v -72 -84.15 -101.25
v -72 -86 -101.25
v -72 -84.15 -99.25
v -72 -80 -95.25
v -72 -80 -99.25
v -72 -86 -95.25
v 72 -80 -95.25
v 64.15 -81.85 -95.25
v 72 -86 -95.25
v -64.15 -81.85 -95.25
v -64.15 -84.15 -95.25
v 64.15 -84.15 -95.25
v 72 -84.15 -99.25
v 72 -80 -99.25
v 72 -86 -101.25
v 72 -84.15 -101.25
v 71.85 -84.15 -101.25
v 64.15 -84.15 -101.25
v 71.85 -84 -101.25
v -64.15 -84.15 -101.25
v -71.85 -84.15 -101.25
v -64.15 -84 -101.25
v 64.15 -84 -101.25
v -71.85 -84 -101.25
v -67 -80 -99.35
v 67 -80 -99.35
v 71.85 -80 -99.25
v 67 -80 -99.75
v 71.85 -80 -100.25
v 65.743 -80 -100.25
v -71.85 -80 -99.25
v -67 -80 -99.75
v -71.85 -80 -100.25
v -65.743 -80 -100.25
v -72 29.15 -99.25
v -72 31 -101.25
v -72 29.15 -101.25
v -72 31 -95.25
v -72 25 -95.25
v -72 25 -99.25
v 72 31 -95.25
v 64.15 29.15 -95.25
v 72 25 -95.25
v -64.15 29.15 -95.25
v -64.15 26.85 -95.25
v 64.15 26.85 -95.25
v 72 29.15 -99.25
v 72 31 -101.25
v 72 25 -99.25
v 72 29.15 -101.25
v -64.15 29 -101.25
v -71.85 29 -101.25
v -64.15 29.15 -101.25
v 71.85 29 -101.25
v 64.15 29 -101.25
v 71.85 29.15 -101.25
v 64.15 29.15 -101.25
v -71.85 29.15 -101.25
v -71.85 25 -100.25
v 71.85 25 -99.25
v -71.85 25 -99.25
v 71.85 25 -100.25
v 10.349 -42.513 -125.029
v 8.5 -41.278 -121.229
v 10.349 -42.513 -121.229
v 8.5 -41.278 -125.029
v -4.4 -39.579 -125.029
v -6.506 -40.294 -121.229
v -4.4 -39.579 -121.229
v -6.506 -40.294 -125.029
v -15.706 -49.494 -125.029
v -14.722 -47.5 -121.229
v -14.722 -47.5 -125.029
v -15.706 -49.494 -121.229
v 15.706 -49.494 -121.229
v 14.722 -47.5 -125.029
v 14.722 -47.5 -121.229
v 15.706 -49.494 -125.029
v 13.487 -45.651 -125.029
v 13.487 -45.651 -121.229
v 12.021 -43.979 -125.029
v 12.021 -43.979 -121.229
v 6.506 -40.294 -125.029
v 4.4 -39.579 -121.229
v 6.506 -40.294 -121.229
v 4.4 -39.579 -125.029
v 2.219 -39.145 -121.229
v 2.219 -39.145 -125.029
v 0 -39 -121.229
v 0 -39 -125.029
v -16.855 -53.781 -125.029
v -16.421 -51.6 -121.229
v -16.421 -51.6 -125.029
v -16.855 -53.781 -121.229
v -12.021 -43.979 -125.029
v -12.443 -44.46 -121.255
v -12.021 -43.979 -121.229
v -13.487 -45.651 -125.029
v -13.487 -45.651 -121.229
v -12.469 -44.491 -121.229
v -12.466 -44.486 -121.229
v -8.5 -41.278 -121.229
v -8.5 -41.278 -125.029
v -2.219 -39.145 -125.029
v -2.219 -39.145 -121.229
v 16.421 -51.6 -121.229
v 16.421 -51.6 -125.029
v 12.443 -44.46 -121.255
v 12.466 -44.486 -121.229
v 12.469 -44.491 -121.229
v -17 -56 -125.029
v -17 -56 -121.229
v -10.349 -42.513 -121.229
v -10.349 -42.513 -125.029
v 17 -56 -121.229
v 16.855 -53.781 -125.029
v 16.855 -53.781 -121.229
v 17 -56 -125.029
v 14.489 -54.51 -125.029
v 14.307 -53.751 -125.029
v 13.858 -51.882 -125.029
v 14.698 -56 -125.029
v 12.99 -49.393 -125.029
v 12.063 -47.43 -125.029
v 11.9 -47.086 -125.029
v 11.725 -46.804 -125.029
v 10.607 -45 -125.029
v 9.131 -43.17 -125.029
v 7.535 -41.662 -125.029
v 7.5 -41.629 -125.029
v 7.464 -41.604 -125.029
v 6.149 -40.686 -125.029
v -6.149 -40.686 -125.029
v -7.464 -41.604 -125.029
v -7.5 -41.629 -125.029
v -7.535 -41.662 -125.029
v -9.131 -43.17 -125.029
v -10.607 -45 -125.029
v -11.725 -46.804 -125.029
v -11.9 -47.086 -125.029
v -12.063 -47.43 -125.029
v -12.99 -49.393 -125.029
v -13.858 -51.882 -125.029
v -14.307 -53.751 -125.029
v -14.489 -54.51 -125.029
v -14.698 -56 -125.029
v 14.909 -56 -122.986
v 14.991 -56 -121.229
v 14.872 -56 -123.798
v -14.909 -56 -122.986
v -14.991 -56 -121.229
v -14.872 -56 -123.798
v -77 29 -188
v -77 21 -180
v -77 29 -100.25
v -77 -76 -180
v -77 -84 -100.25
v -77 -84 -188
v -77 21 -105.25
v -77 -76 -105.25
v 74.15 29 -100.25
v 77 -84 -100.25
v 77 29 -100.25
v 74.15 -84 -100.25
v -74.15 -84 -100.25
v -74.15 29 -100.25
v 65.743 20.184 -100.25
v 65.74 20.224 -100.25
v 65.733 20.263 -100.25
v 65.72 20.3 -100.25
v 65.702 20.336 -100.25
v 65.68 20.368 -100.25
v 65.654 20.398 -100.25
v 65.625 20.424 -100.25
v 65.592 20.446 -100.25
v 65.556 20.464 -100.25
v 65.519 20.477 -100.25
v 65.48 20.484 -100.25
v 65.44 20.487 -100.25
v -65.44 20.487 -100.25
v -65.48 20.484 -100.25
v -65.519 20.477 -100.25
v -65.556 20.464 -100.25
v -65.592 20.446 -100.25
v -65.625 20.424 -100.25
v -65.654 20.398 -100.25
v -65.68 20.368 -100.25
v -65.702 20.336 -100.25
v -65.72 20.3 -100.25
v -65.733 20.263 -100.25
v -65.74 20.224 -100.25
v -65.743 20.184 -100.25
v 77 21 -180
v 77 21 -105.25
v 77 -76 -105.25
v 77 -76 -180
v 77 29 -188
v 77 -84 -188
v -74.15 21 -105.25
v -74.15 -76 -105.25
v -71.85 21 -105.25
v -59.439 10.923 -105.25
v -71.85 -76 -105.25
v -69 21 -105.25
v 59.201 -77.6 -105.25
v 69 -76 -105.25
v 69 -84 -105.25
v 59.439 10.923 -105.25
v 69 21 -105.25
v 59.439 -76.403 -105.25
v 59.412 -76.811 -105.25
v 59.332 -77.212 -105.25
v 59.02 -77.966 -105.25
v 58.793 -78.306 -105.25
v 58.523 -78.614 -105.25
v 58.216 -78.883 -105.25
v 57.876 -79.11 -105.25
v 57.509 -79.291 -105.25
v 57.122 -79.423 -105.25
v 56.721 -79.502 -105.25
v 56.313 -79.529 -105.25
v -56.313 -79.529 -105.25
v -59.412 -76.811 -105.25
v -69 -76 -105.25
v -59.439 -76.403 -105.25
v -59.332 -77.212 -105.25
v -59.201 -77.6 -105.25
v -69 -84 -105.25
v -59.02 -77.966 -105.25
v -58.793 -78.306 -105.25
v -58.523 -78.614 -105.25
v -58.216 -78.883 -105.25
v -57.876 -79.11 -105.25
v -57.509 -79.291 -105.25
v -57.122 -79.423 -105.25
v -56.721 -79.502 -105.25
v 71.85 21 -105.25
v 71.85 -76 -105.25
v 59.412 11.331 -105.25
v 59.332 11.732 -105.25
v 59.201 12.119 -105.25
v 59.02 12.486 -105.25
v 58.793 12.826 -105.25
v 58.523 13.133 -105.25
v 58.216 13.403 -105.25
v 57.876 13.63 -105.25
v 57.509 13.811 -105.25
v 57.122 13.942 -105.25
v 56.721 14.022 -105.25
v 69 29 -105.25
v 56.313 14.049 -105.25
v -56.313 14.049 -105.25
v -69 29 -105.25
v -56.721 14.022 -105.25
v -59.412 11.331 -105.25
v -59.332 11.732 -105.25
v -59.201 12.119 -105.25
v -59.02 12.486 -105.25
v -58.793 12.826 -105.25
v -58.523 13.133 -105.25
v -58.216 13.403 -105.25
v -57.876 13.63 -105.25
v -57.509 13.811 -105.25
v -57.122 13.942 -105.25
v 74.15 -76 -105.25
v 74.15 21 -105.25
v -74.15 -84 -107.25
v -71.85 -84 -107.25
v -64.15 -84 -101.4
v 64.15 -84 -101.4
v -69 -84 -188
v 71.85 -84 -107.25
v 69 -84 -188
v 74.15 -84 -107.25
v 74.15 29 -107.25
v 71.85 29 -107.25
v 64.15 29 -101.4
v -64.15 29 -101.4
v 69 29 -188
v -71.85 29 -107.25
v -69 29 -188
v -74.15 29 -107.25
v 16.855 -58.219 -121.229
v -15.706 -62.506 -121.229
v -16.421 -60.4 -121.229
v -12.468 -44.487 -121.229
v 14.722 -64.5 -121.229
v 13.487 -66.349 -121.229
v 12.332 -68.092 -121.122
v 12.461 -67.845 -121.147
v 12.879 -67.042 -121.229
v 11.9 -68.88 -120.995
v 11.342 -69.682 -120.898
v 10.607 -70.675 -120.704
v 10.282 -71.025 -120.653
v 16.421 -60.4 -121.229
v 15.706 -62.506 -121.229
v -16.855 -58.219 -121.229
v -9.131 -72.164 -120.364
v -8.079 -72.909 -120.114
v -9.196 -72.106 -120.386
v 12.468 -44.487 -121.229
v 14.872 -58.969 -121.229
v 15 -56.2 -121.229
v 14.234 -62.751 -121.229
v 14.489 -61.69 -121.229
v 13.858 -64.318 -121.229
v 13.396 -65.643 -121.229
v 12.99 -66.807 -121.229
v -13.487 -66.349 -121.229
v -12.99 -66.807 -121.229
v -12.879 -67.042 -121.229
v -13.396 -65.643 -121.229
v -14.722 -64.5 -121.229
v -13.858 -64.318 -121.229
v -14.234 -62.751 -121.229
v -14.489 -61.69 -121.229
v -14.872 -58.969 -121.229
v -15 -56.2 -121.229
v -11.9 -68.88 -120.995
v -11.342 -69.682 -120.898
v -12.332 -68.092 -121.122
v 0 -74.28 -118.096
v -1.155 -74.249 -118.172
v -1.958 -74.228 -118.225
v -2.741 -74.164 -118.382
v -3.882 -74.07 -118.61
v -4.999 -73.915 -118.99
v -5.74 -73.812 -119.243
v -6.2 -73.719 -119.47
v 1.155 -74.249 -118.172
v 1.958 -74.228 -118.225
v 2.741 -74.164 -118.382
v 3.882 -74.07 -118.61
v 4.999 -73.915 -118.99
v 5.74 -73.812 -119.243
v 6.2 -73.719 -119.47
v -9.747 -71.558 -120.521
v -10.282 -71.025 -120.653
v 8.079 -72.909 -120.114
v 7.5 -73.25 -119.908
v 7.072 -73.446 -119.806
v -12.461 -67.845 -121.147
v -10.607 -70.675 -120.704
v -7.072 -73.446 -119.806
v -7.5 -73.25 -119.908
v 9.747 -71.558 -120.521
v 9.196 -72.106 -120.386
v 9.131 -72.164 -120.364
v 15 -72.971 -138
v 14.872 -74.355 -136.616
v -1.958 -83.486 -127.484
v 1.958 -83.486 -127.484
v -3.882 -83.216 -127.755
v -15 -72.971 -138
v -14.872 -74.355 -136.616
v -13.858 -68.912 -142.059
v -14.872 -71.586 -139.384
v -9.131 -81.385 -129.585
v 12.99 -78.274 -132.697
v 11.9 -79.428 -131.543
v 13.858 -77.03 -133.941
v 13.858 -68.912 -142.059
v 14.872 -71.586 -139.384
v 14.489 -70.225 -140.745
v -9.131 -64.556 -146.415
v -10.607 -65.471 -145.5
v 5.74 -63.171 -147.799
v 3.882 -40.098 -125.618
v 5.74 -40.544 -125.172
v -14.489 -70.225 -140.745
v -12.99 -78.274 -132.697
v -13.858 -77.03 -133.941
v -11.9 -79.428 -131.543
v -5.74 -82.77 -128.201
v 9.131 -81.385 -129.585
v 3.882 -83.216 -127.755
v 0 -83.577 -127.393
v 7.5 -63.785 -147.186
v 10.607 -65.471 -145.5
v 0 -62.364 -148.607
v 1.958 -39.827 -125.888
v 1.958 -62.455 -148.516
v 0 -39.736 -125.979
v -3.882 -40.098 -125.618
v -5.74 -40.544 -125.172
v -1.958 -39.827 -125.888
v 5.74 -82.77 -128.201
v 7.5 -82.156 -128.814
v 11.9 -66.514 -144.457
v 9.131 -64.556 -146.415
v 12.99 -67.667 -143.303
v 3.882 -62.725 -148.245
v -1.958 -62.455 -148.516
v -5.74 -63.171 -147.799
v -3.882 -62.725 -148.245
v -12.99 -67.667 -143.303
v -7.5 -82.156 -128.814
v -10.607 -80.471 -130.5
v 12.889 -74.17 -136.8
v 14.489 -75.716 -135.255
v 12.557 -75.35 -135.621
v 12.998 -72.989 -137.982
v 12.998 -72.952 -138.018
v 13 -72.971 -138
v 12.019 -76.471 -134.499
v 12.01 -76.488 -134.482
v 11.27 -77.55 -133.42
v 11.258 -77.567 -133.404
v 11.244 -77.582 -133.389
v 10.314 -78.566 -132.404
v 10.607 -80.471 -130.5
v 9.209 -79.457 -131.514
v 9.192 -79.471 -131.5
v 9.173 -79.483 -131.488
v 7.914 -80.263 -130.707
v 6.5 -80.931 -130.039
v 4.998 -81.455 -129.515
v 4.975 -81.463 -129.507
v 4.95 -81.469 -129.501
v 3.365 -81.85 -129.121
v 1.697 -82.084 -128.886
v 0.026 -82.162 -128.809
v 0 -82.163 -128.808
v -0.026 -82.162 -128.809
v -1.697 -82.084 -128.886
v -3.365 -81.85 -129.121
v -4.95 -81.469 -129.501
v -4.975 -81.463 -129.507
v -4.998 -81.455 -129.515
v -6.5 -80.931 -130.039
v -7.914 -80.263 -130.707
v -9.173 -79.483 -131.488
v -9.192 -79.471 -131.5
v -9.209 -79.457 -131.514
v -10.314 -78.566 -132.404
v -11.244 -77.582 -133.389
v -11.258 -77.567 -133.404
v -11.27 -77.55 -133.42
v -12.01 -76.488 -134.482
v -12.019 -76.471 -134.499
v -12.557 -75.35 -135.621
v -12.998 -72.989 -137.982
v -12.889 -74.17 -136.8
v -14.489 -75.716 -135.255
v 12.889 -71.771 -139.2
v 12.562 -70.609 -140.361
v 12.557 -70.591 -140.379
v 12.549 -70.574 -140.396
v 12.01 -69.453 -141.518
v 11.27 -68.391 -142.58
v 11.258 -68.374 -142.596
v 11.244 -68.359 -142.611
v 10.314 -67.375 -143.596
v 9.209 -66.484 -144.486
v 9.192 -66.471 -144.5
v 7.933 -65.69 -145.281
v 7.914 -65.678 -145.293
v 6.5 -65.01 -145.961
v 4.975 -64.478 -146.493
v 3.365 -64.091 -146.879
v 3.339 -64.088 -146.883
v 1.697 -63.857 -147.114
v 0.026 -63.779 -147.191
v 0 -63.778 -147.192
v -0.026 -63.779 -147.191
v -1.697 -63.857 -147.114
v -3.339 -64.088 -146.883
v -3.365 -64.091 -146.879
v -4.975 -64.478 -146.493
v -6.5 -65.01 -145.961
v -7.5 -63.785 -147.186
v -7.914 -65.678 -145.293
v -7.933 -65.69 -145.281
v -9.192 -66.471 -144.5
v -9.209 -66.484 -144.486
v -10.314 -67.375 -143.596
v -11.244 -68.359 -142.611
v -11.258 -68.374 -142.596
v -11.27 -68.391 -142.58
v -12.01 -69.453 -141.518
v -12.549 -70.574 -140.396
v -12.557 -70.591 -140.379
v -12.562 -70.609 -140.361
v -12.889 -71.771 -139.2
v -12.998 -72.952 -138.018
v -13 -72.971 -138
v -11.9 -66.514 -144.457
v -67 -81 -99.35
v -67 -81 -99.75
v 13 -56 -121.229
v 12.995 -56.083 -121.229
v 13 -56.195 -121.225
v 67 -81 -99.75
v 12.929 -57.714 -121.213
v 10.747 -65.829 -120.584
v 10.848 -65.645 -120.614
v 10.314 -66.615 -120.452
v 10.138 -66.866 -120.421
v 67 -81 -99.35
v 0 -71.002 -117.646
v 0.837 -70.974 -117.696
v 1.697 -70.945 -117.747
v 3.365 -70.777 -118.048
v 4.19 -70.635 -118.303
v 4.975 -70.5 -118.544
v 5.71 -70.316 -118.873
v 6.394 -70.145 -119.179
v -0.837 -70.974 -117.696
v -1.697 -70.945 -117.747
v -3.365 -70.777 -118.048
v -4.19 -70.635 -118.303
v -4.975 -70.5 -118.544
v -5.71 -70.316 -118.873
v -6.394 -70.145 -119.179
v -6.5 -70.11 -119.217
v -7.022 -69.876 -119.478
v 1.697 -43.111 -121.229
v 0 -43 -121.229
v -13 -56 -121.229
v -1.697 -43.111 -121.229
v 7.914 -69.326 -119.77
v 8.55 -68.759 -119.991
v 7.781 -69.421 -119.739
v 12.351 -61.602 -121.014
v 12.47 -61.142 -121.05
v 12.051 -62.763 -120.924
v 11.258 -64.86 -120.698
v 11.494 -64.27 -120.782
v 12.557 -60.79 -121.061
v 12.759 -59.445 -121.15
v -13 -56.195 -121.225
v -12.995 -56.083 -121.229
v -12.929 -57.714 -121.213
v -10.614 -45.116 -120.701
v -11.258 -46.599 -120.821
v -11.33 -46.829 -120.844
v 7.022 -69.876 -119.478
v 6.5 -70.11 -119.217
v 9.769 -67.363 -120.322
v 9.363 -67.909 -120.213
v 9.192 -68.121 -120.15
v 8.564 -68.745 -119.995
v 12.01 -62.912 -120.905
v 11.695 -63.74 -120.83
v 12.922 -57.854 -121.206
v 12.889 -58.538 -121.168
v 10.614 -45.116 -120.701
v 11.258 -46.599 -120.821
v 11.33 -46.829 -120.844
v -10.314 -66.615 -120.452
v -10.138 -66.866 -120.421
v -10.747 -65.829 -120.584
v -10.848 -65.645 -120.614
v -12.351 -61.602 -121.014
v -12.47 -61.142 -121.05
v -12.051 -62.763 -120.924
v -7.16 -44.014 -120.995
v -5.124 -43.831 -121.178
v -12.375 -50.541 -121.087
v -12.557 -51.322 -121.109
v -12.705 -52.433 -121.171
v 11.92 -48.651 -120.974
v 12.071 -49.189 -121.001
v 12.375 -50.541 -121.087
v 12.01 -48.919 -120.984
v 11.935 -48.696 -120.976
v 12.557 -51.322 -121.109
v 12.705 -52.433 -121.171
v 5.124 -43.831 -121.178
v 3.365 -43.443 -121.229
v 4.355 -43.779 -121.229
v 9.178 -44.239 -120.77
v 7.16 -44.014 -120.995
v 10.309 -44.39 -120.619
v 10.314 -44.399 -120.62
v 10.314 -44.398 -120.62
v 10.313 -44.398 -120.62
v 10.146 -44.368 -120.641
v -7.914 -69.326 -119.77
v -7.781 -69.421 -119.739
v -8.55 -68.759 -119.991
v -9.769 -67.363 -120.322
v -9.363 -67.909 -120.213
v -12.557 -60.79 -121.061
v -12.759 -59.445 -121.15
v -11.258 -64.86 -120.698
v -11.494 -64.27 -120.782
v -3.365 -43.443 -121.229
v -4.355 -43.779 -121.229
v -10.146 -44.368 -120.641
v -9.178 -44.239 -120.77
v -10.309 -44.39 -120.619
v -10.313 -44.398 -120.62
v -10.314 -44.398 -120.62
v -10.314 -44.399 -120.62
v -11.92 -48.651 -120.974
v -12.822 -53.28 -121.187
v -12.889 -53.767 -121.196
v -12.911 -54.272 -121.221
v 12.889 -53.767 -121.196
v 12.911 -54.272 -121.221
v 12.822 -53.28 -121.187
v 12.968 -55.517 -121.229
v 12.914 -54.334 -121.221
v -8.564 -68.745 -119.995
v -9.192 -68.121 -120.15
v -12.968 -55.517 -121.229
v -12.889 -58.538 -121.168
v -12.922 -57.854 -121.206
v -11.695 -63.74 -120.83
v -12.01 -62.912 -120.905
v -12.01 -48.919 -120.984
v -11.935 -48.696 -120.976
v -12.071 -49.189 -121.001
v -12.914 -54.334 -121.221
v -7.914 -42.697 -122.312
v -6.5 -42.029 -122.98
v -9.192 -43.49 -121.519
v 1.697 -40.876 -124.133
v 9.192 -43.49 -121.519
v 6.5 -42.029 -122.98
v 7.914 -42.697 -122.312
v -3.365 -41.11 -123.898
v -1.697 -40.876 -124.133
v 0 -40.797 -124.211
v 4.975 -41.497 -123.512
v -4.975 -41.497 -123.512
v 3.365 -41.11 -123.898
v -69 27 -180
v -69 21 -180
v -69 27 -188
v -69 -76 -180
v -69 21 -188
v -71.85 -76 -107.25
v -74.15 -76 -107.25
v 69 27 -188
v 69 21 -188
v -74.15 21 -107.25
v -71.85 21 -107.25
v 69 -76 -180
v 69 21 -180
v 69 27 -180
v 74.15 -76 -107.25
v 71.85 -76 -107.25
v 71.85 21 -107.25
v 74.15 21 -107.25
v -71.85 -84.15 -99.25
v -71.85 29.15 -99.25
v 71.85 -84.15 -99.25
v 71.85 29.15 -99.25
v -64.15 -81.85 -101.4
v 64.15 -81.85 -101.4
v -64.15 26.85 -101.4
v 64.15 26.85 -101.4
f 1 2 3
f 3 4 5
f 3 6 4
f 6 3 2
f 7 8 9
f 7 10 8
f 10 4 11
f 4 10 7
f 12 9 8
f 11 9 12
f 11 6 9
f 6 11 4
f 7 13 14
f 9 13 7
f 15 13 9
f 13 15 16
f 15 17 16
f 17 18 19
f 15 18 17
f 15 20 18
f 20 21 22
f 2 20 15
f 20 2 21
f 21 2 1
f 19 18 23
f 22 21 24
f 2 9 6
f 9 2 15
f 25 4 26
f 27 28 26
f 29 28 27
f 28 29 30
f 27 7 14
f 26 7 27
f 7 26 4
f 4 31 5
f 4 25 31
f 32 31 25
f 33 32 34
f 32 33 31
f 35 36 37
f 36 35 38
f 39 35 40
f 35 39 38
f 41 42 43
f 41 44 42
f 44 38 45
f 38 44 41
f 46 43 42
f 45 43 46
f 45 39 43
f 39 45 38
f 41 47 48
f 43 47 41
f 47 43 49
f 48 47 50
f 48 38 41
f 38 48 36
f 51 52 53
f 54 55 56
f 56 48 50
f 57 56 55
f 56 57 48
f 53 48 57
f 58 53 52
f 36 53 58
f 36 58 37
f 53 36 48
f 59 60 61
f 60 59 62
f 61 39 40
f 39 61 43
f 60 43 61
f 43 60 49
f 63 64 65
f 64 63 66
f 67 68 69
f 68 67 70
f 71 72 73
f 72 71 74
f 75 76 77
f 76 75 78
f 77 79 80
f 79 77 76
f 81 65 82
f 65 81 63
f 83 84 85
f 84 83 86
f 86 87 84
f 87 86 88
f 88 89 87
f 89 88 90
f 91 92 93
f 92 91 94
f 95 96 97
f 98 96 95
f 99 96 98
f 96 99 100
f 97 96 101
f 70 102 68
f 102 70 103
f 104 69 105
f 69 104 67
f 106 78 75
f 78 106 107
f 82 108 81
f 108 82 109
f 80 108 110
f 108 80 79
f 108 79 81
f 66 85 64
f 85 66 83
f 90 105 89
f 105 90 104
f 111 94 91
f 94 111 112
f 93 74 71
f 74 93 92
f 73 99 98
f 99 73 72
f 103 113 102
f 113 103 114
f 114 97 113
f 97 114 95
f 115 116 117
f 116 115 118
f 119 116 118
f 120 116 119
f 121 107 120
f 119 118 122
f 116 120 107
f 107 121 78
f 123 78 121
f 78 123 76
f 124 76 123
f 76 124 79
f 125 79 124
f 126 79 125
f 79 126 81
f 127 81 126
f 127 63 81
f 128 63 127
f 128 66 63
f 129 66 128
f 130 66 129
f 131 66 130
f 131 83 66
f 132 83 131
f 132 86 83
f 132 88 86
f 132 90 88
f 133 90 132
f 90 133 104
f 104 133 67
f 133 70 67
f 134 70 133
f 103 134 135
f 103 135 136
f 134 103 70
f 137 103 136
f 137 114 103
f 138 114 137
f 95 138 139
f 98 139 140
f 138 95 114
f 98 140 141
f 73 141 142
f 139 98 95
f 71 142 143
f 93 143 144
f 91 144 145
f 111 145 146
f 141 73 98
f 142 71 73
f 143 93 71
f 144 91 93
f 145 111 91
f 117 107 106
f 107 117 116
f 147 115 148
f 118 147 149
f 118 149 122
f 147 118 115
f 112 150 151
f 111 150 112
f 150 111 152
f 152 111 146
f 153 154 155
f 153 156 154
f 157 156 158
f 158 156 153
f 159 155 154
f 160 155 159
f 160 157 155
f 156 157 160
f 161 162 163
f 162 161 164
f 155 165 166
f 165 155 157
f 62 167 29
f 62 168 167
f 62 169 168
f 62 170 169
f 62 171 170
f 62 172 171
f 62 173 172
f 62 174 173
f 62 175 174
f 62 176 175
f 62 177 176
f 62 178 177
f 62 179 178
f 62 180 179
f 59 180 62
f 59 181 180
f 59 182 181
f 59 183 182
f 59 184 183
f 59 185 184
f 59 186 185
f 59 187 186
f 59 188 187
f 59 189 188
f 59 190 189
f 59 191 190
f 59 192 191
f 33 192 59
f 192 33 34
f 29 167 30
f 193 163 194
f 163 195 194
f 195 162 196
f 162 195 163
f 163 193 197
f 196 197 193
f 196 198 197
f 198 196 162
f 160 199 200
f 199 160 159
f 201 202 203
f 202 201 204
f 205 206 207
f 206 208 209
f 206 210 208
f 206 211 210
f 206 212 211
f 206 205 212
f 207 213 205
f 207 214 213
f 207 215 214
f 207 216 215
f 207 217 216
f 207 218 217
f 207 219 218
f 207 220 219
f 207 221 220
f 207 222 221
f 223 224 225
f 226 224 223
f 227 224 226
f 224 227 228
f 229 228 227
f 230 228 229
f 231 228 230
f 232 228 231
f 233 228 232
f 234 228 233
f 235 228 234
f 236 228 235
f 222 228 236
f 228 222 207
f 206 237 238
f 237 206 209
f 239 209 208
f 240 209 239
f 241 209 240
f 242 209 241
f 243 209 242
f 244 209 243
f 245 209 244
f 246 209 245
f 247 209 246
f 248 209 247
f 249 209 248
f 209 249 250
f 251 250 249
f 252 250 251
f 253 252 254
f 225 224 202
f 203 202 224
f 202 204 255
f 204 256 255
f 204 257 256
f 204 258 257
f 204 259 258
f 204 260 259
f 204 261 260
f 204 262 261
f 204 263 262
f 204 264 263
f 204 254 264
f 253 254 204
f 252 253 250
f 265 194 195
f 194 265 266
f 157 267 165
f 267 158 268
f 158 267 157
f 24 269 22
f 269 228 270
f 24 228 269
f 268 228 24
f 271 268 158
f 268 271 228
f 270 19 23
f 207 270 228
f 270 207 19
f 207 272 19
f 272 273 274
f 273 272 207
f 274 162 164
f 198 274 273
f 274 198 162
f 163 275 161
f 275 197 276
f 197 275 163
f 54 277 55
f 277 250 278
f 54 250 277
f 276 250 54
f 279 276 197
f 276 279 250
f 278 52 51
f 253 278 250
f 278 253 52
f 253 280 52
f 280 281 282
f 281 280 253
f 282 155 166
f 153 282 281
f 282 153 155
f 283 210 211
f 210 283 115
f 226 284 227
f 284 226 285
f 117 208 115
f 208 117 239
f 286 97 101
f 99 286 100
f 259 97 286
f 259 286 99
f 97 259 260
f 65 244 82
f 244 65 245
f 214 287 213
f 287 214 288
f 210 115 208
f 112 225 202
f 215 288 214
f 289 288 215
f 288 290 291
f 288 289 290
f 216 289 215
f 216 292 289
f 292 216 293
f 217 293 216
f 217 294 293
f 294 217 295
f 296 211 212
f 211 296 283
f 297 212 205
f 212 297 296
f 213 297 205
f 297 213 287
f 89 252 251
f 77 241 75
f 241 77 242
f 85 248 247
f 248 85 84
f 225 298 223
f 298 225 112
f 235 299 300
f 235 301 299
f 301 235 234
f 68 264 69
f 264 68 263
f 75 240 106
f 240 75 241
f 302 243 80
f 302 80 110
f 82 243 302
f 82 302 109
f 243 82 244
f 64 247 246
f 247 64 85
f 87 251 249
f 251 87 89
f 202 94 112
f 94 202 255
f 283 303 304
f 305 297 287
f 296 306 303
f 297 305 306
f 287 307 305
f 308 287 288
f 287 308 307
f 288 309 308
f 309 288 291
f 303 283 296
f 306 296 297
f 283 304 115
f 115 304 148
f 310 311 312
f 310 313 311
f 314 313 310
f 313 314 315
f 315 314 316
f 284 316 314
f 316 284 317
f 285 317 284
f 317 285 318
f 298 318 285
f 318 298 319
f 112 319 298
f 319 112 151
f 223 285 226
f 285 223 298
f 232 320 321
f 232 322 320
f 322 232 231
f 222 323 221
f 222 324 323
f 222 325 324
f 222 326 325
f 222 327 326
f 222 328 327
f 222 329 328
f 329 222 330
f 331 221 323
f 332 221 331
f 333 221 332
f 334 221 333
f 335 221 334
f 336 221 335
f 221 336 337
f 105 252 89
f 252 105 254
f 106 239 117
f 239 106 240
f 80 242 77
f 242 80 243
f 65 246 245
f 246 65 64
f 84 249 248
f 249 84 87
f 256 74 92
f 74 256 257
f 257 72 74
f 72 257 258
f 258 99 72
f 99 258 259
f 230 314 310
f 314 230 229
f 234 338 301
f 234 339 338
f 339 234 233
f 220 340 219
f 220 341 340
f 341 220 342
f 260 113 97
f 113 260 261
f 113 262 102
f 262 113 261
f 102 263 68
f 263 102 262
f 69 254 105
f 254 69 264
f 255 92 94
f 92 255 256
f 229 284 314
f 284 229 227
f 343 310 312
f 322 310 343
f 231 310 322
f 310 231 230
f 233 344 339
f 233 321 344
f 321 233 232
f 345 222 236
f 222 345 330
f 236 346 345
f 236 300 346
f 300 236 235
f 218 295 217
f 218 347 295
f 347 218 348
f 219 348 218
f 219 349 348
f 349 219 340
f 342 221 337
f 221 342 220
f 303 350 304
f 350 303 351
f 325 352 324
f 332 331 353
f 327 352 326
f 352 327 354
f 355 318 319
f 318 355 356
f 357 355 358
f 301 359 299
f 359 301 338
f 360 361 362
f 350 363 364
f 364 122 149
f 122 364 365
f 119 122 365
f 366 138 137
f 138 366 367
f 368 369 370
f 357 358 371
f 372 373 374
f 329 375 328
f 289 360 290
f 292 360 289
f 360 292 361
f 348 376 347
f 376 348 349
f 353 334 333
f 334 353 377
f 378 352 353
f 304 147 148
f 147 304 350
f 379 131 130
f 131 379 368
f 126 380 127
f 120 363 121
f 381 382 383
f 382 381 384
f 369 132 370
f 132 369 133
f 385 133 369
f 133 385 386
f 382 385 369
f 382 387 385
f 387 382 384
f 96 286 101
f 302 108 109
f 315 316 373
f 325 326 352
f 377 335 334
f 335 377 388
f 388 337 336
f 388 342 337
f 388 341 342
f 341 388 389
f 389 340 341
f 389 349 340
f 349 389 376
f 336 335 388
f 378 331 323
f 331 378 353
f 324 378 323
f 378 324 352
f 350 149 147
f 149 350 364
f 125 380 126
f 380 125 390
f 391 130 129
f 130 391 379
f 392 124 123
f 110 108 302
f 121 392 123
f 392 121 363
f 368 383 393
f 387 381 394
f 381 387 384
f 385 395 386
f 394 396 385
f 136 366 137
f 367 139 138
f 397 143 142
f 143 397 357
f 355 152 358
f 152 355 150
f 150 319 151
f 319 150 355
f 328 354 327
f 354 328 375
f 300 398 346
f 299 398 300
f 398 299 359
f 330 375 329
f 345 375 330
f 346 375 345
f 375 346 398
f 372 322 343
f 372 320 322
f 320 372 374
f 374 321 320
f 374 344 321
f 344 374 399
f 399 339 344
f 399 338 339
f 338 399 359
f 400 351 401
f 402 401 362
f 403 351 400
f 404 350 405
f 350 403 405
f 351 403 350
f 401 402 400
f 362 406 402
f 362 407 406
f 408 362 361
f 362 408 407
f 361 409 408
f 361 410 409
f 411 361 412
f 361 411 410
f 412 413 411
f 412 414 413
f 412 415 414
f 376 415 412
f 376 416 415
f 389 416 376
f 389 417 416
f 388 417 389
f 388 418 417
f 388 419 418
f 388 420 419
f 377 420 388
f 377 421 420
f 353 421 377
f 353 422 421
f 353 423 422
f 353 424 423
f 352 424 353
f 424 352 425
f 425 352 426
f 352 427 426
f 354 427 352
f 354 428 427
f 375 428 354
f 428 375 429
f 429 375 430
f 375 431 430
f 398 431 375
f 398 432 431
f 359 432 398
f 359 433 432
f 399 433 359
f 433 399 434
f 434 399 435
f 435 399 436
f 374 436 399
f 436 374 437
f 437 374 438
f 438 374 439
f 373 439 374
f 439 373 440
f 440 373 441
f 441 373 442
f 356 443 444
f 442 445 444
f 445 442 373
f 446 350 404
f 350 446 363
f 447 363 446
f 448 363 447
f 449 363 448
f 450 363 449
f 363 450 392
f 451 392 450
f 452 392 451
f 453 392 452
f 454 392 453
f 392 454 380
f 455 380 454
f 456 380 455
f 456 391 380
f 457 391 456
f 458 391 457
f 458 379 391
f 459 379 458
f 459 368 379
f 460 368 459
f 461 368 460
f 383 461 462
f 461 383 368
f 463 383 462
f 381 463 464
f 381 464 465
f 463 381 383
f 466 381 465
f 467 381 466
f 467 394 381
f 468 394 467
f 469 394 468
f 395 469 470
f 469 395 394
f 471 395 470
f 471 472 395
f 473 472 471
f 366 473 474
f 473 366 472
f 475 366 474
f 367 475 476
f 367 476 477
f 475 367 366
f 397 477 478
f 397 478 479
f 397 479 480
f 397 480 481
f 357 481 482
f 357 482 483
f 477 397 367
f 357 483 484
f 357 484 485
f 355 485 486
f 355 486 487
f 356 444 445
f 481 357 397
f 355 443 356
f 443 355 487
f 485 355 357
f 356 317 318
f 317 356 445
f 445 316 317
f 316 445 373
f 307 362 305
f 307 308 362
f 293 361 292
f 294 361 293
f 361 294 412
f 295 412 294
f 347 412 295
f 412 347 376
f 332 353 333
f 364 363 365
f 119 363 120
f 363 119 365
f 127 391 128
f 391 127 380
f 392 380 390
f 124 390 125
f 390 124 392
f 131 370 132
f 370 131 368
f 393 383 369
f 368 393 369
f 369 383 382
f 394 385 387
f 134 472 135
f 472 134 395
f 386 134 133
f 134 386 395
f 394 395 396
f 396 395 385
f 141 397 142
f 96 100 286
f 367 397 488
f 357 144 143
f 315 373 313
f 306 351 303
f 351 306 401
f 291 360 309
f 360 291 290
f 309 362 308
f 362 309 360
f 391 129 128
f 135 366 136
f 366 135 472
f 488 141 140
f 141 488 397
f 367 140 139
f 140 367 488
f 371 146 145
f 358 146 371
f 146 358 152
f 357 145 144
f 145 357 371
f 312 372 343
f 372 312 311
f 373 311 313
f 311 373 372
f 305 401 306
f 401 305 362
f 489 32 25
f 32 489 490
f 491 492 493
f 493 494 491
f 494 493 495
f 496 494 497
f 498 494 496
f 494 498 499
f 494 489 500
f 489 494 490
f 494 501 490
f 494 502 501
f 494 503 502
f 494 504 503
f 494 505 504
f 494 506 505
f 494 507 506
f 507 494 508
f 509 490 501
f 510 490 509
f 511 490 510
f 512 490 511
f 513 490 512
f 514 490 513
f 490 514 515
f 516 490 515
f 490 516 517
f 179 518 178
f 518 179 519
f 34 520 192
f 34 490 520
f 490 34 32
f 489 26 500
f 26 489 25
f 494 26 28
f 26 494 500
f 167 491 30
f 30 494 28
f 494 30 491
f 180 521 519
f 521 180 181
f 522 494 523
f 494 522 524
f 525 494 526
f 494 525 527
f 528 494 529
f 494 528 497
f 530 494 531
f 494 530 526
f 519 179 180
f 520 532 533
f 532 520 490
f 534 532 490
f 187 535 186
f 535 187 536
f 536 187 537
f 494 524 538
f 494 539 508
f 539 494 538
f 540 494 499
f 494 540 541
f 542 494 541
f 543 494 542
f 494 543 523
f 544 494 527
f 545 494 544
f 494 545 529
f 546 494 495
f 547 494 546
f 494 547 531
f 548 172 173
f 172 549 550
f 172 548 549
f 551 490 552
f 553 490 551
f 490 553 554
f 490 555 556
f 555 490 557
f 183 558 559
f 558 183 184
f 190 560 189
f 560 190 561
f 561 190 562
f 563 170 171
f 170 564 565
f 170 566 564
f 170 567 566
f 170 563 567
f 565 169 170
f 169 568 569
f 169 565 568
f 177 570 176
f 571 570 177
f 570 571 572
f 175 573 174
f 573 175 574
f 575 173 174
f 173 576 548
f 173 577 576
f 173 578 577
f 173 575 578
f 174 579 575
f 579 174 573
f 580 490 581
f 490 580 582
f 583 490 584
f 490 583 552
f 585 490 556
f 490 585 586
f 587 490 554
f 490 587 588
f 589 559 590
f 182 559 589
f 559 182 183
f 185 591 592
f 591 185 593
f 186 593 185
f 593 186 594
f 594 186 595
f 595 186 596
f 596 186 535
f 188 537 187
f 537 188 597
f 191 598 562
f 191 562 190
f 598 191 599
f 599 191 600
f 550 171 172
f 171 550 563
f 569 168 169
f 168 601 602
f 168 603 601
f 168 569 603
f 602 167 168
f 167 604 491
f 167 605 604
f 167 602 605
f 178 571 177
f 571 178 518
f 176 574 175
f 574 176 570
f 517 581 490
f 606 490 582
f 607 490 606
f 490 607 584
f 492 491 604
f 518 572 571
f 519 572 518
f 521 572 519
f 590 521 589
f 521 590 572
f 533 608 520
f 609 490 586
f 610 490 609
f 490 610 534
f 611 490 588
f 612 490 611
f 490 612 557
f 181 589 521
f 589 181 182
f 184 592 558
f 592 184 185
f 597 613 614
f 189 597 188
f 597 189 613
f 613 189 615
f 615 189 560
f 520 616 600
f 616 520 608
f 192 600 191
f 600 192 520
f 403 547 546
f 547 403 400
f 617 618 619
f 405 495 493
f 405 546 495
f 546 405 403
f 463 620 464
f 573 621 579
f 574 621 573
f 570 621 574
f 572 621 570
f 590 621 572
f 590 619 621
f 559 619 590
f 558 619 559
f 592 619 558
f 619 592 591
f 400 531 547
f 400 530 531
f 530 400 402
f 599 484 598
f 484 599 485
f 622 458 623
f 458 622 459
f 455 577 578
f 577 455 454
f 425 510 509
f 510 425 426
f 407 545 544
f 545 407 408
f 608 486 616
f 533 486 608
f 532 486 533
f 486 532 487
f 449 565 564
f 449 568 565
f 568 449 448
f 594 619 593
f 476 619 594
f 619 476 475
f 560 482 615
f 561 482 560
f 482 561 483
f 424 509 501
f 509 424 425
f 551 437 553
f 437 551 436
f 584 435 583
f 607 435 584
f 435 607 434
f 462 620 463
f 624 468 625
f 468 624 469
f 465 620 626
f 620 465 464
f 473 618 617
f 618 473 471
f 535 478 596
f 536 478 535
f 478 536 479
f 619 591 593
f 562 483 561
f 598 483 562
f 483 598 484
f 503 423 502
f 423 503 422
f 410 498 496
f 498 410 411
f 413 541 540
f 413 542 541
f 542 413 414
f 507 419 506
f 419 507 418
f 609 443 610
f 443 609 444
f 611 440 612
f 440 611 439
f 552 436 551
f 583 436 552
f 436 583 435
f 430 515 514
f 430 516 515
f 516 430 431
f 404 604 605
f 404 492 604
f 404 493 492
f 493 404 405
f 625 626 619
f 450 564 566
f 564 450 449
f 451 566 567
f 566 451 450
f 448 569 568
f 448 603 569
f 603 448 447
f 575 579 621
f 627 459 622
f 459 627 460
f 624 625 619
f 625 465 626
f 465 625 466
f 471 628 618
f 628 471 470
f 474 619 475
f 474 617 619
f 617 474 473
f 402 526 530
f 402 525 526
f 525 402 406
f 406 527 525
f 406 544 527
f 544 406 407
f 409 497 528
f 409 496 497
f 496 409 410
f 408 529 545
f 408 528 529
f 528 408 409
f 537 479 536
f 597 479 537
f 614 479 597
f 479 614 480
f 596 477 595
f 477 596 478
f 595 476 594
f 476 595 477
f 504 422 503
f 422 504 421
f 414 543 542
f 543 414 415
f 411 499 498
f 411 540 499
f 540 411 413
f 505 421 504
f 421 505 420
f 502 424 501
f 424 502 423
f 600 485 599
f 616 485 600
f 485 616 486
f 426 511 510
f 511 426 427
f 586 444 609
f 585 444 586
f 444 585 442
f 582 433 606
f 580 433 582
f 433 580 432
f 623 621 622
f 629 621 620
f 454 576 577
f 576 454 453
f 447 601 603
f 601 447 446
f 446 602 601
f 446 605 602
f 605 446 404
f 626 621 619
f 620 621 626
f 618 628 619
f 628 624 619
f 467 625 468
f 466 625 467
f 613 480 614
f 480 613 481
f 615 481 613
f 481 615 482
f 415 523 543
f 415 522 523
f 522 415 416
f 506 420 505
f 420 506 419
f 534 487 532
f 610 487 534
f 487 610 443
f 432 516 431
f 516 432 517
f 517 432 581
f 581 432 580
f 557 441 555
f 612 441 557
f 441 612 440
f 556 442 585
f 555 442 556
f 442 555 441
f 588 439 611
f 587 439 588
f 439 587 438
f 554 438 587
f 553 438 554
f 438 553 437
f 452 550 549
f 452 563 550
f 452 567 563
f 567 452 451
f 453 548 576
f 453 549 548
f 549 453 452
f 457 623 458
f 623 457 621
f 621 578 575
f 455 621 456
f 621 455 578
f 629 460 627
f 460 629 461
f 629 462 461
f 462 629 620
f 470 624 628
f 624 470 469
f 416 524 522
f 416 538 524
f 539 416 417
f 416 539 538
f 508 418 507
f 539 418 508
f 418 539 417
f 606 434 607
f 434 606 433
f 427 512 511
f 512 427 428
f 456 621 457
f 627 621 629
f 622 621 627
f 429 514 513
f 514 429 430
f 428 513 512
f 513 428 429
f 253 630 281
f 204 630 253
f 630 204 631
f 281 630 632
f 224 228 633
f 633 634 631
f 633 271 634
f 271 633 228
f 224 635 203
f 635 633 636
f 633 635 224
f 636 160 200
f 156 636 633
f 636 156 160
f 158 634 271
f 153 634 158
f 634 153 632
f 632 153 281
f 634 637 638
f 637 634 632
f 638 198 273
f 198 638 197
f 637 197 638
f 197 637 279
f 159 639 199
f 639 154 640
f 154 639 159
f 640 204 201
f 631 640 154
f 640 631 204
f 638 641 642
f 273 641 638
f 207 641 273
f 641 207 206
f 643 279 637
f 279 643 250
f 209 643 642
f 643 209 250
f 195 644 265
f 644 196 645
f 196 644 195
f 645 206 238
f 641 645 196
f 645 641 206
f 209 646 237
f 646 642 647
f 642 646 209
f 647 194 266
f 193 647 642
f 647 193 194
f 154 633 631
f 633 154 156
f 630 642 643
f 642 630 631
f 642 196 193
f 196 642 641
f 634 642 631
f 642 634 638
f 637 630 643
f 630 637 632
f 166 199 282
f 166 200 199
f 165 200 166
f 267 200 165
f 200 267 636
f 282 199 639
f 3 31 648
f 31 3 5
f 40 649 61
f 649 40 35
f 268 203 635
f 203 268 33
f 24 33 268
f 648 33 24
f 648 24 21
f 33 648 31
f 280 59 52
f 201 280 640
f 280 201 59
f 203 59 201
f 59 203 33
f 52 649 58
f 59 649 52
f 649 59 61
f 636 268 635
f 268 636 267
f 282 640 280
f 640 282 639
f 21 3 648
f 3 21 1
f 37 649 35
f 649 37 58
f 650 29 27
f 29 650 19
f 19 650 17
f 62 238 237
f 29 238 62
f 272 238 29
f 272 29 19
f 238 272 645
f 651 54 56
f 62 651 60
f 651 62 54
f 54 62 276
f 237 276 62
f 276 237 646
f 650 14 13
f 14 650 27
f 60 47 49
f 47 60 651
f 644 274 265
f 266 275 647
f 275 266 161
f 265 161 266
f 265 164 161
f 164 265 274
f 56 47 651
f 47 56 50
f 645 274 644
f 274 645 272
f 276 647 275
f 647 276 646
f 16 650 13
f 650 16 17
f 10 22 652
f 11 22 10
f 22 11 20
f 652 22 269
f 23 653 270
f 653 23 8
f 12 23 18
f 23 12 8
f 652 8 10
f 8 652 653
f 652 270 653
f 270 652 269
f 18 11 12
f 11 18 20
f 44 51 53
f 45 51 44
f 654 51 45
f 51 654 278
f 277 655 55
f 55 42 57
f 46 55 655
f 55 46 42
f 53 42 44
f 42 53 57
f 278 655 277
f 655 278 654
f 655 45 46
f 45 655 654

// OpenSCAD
/*
  Seed imaging system case with experimental collector

  Starting point:
    A simple rectangular base plate for the vacuum/rocking seed imaging system.
*/

$fn = 48;

// Choose what OpenSCAD shows/exports.
part_to_show = "bottom"; // "assembly", "plate", "front", "back", "left_side", "right_side", "sides", "collector", "lower_frame", "bottom"

// Base plate dimensions.
plate_w = 210;      // mm
plate_h = 180;      // mm
plate_thick = 2;    // mm
corner_r = 2;       // mm, just enough to remove sharp corners
wall_slot_clearance = 0.3; // mm extra slot size for sliding wall parts into plate

// Cutout matching the outer tray footprint of the moving funnel adapter.
funnel_cutout_w = 124;       // mm, long side plus clearance for rotation
funnel_cutout_h = 87;        // mm, short side plus clearance for rotation
funnel_front_gap = 20;       // mm from front long edge of plate to cutout
funnel_cutout_r = 2;         // mm, slight radius to avoid sharp internal corners
funnel_cutout_y = -plate_h/2 + funnel_front_gap + funnel_cutout_h/2;

// Front wall for the vacuum adapter interface, hanging down from the top plate.
front_wall_offset_from_cutout = 12; // mm from front edge of cutout toward plate front
front_wall_extra_w = 10;            // mm extension beyond each cutout side
front_wall_w = funnel_cutout_w + 2 * front_wall_extra_w;
front_wall_h = 101.25;              // mm, bottom is 72 mm below front circle center
front_wall_thick = 2;               // mm
front_wall_y = funnel_cutout_y - funnel_cutout_h/2 - front_wall_offset_from_cutout - front_wall_thick;
back_wall_offset_from_cutout = 10;  // mm from back edge of cutout toward plate back
back_wall_y = funnel_cutout_y + funnel_cutout_h/2 + back_wall_offset_from_cutout;
side_wall_thick = front_wall_thick;
side_wall_y = front_wall_y;
side_wall_depth = back_wall_y + front_wall_thick - front_wall_y;

// Circular opening in the front wall for the static funnel-system spout.
static_spout_outer_d = 31.5;       // mm, current static male spout OD
front_wall_spout_clearance = 1;    // mm extra diameter clearance
front_wall_spout_cutout_d = static_spout_outer_d + front_wall_spout_clearance;
front_wall_spout_top_drop = 15;    // mm below top surface of plate
front_wall_spout_center_z = plate_thick - front_wall_spout_top_drop - front_wall_spout_cutout_d/2;
front_wall_tab_margin = 10;      // mm material around circular spout tab
front_wall_tab_x = -front_wall_spout_cutout_d/2 - front_wall_tab_margin;
front_wall_tab_w = front_wall_spout_cutout_d + 2 * front_wall_tab_margin;
front_back_wall_bottom_clearance = 10; // mm below circular cutout bottom
front_back_wall_bottom_z = front_wall_spout_center_z - front_wall_spout_cutout_d/2 - front_back_wall_bottom_clearance;
front_back_wall_h = -front_back_wall_bottom_z;

// Rectangular opening in the back wall, aligned with the spout opening height.
back_wall_rect_cutout_w = 40;   // mm, long horizontal edge
back_wall_rect_cutout_h = 20;   // mm, vertical edge
back_wall_rect_cutout_x_shift = -11; // mm, left shift from spout center
back_wall_notch_size = 7;       // mm square notch centered on right edge
back_wall_notch_overlap = 0.5;  // mm overlap to avoid a zero-width seam
back_wall_tab_margin = 10;      // mm material around motor cutout tab
back_wall_cutout_min_x = back_wall_rect_cutout_x_shift - back_wall_rect_cutout_w/2;
back_wall_cutout_max_x = back_wall_rect_cutout_x_shift + back_wall_rect_cutout_w/2 + back_wall_notch_size;
back_wall_tab_x = back_wall_cutout_min_x - back_wall_tab_margin;
back_wall_tab_w = back_wall_cutout_max_x - back_wall_cutout_min_x + 2 * back_wall_tab_margin;
back_wall_servo_pad_thick = 4;    // mm extra thickness behind servo mount area
back_wall_servo_pad_margin = 6;   // mm material around the motor rectangle cutout
// Experimental lower collector dimensions.
total_system_h = 190;              // mm, target total height from top of plate to floor
floor_z = plate_thick - total_system_h;
upper_wall_bottom_z = -front_wall_h;
collector_drop_h = upper_wall_bottom_z - floor_z;
collector_wall = 2;                // mm wall thickness for chute/outlet
collector_outlet_od = 30;          // mm outer diameter for seed packet interface
collector_outlet_id = collector_outlet_od - 2 * collector_wall;
collector_outlet_len = 24;         // mm, angled tube length; shorter leaves room for the funnel slope
collector_neck_overlap = 8;        // mm overlap into throat so the angled neck and funnel connect solidly
collector_outlet_angle = 135;      // degrees; cylinder axis points 45 degrees down toward the front
collector_floor_clearance = 35;    // mm from floor to lowest outside edge of outlet mouth
collector_outlet_end_z = floor_z + collector_floor_clearance + collector_outlet_od/2;
collector_outlet_start_z = collector_outlet_end_z - collector_outlet_len * cos(collector_outlet_angle);
collector_outlet_start_y = front_wall_y + 28;
collector_outlet_end_y = collector_outlet_start_y - collector_outlet_len * sin(collector_outlet_angle);
collector_top_margin = 3;          // mm inset from inside wall span
collector_post = 8;                // mm square lower frame corner posts
collector_base_rail_h = 8;         // mm height of bottom rails
collector_base_rail_thick = 6;     // mm thickness of bottom rails
collector_lip_h = 4;               // mm thick top lip tying collector mouth into lower posts
collector_lip_overlap_up = 1;      // mm overlap into upper walls for preview/alignment before adding slots
bottom_wall_notch_depth = 6;       // mm deep receiver notch for side walls in the bottom piece
side_wall_h = front_wall_h + bottom_wall_notch_depth; // mm side walls extend into bottom notches
side_wall_top_tab_inset = 4;      // mm shorter at each end to make a shoulder stop under the top plate
front_back_wall_top_tab_inset = 4; // mm shorter at each end for front/back top plate shoulder stops
tray_boundary_wall_thick = 6;     // mm, wider than 2 mm front/back walls for future notches
tray_boundary_wall_h = 6;         // mm small raised boundary at front/back tray edges
tray_boundary_wall_x_margin = 4;  // mm extra length beyond matching front/back wall pieces
tray_boundary_wall_side_inset = side_wall_thick/2 + collector_post/2; // mm keeps rails clear of side walls
front_back_diag_frame_w = 8;      // mm width of trapezoid-frame brace bands
front_back_diag_wall_overlap = 1; // mm overlap so brace merges cleanly into front/back wall
front_back_diag_inner_base_inset = 22; // mm larger values make the inner triangle less obtuse
front_back_diag_end_inset = 14;   // mm keeps brace feet shy of side-wall/funnel corners
front_back_diag_tab_w = 12;       // mm width of rectangular feet that seat in tray-wall notches
front_back_diag_tab_h = tray_boundary_wall_h; // mm foot height matching the tray wall height
front_back_diag_notch_clearance = wall_slot_clearance; // mm extra room around brace feet

// Makes a 2D rounded rectangle profile.
module rounded_rect_2d(w, h, r) {
  offset(r = r)
    square([w - 2*r, h - 2*r], center = true);
}

// Makes the main rectangular base plate with lightly rounded corners.
module base_plate() {
  linear_extrude(height = plate_thick)
    rounded_rect_2d(plate_w, plate_h, corner_r);
}

// Cuts the moving funnel adapter tray footprint through the plate. The long
// side of the cutout runs parallel to the long side of the plate.
module funnel_tray_cutout() {
  translate([0, funnel_cutout_y, -0.5])
    linear_extrude(height = plate_thick + 1)
      rounded_rect_2d(funnel_cutout_w, funnel_cutout_h, funnel_cutout_r);
}

// Cuts the round spout opening through the front wall.
module front_wall_spout_cutout() {
  translate([0, front_wall_y + front_wall_thick/2, front_wall_spout_center_z])
    rotate([90, 0, 0])
      cylinder(h = front_wall_thick + 1, d = front_wall_spout_cutout_d, center = true);
}


// Makes a trapezoid-shaped wall extension with a triangular center opening.
// The two lower rectangular feet seat into matching notches in the tray wall.
module front_back_trapezoid_brace_at(wall_x, wall_w, y, y_thick) {
  top_left = wall_x;
  top_right = wall_x + wall_w;
  foot_left_center = -front_wall_w/2 + front_back_diag_end_inset;
  foot_right_center = front_wall_w/2 - front_back_diag_end_inset;
  foot_left_outer = foot_left_center - front_back_diag_tab_w/2;
  foot_left_inner = foot_left_center + front_back_diag_tab_w/2;
  foot_right_inner = foot_right_center - front_back_diag_tab_w/2;
  foot_right_outer = foot_right_center + front_back_diag_tab_w/2;
  z_top = front_back_wall_bottom_z + front_back_diag_wall_overlap;
  z_bottom = upper_wall_bottom_z;
  z_foot_top = upper_wall_bottom_z + front_back_diag_tab_h;

  translate([0, y + y_thick, 0])
    rotate([90, 0, 0])
      linear_extrude(height = y_thick)
        polygon(points = [
          [top_left, z_top],
          [top_right, z_top],
          [foot_right_outer, z_foot_top],
          [foot_right_outer, z_bottom],
          [foot_left_outer, z_bottom],
          [foot_left_outer, z_foot_top]
        ]);
}
// Makes the front vertical wall below the plate.
module front_wall() {
  front_wall_top_tab_x = front_wall_tab_x + front_back_wall_top_tab_inset;
  front_wall_top_tab_w = front_wall_tab_w - 2 * front_back_wall_top_tab_inset;

  difference() {
    union() {
      translate([front_wall_tab_x, front_wall_y, front_back_wall_bottom_z])
        cube([front_wall_tab_w, front_wall_thick, front_back_wall_h], center = false);
      translate([front_wall_top_tab_x, front_wall_y, 0])
        cube([front_wall_top_tab_w, front_wall_thick, plate_thick], center = false);
      front_back_trapezoid_brace_at(front_wall_tab_x, front_wall_tab_w, front_wall_y, front_wall_thick);
    }
    front_wall_spout_cutout();
  }
}

// Cuts the rectangular opening through the back wall.
module back_wall_rect_cutout() {
  union() {
    translate([back_wall_rect_cutout_x_shift - back_wall_rect_cutout_w/2,
               back_wall_y - 0.5,
               front_wall_spout_center_z - back_wall_rect_cutout_h/2])
      cube([back_wall_rect_cutout_w, front_wall_thick + back_wall_servo_pad_thick + 1, back_wall_rect_cutout_h], center = false);

    translate([back_wall_rect_cutout_x_shift + back_wall_rect_cutout_w/2 - back_wall_notch_overlap,
               back_wall_y - 0.5,
               front_wall_spout_center_z - back_wall_notch_size/2])
      cube([back_wall_notch_size + back_wall_notch_overlap, front_wall_thick + back_wall_servo_pad_thick + 1, back_wall_notch_size], center = false);
  }
}


// Adds localized thickness behind the motor cutout for servo mounting screws.
module back_wall_servo_mount_pad() {
  pad_x = back_wall_tab_x;
  pad_w = back_wall_tab_w;
  pad_z = front_wall_spout_center_z - back_wall_rect_cutout_h/2 - back_wall_servo_pad_margin;
  pad_h = back_wall_rect_cutout_h + 2 * back_wall_servo_pad_margin;

  translate([pad_x, back_wall_y + front_wall_thick, pad_z])
    cube([pad_w, back_wall_servo_pad_thick, pad_h], center = false);
}
// Makes the back vertical wall below the plate, mirrored from the front wall.
module back_wall() {
  back_wall_top_tab_x = back_wall_tab_x + front_back_wall_top_tab_inset;
  back_wall_top_tab_w = back_wall_tab_w - 2 * front_back_wall_top_tab_inset;

  difference() {
    union() {
      translate([back_wall_tab_x, back_wall_y, front_back_wall_bottom_z])
        cube([back_wall_tab_w, front_wall_thick, front_back_wall_h], center = false);
      translate([back_wall_top_tab_x, back_wall_y, 0])
        cube([back_wall_top_tab_w, front_wall_thick, plate_thick], center = false);
      front_back_trapezoid_brace_at(back_wall_tab_x, back_wall_tab_w, back_wall_y, front_wall_thick);
      back_wall_servo_mount_pad();
    }
    back_wall_rect_cutout();
  }
}

// Makes side walls that connect the front and back walls while preserving
// the 144 mm interior span between their inside faces.
module side_wall(side) {
  x = side < 0 ? -front_wall_w/2 - side_wall_thick : front_wall_w/2;
  tab_y = side_wall_y + side_wall_top_tab_inset;
  tab_depth = side_wall_depth - 2 * side_wall_top_tab_inset;

  union() {
    translate([x, side_wall_y, -side_wall_h])
      cube([side_wall_thick, side_wall_depth, side_wall_h], center = false);

    translate([x, tab_y, 0])
      cube([side_wall_thick, tab_depth, plate_thick], center = false);
  }
}

module side_walls() {
  side_wall(-1);
  side_wall(1);
}
// Makes a very thin rectangular face used as the open mouth of the collector chute.
module collector_top_patch(w, d, z) {
  translate([-w/2, side_wall_y + collector_top_margin, z])
    cube([w, d, 0.4], center = false);
}

// Makes a very thin circular face used as the lower throat of the collector chute.
module collector_circle_patch(d, y, z) {
  translate([0, y, z])
    cylinder(h = 0.4, d = d, center = true);
}


// Adds a broad lip at the top of the collector so the funnel clearly rests on the lower posts
// and closes the gap to the original side wall pieces.
module collector_top_lip_outer() {
  lip_x = -front_wall_w/2 - side_wall_thick/2 - collector_post/2;
  lip_y = side_wall_y;
  lip_w = front_wall_w + side_wall_thick + collector_post;
  lip_d = side_wall_depth;

  translate([lip_x, lip_y, upper_wall_bottom_z - collector_lip_h])
    cube([lip_w, lip_d, collector_lip_h + collector_lip_overlap_up], center = false);
}

// Keeps the collector lip open so seeds can drop into the funnel.
module collector_top_lip_void() {
  opening_w = front_wall_w - 2 * collector_wall;
  opening_d = side_wall_depth - 2 * collector_wall;

  translate([-opening_w/2,
             side_wall_y + collector_wall,
             upper_wall_bottom_z - collector_lip_h - 0.5])
    cube([opening_w, opening_d, collector_lip_h + 3], center = false);
}
// Outer solid rectangular-to-round collector funnel.
module collector_chute_outer() {
  top_w_outer = front_wall_w - 2 * collector_top_margin;
  top_d_outer = side_wall_depth - 2 * collector_top_margin;

  hull() {
    collector_top_patch(top_w_outer, top_d_outer, upper_wall_bottom_z - 0.4);
    collector_circle_patch(collector_outlet_od + 2 * collector_wall, collector_outlet_start_y, collector_outlet_start_z);
  }
}

// Continuous inner void for the rectangular-to-round collector funnel.
module collector_chute_void() {
  top_w_outer = front_wall_w - 2 * collector_top_margin;
  top_d_outer = side_wall_depth - 2 * collector_top_margin;
  top_w_inner = top_w_outer - 2 * collector_wall;
  top_d_inner = top_d_outer - 2 * collector_wall;

  hull() {
    collector_top_patch(top_w_inner, top_d_inner, upper_wall_bottom_z + 1.5);
    collector_circle_patch(collector_outlet_id, collector_outlet_start_y, collector_outlet_start_z);
  }
}


// Adds material only behind the circular throat to close the rear-side gap.
// The shared inner void is subtracted later, so this reinforces the wall without blocking flow.
module collector_rear_throat_seal_outer() {
  seal_d = collector_outlet_od + 2 * collector_wall;
  seal_h = 8;

  intersection() {
    translate([0, collector_outlet_start_y, collector_outlet_start_z - seal_h/2])
      cylinder(h = seal_h, d = seal_d, center = false);

    translate([-seal_d/2,
               collector_outlet_start_y,
               collector_outlet_start_z - seal_h/2])
      cube([seal_d, seal_d/2 + collector_wall, seal_h], center = false);
  }
}
// Outer solid for the tilted outlet neck that the seed packet can wrap around.
module collector_outlet_neck_outer() {
  translate([0,
             collector_outlet_start_y + collector_neck_overlap * sin(collector_outlet_angle),
             collector_outlet_start_z - collector_neck_overlap * cos(collector_outlet_angle)])
    rotate([collector_outlet_angle, 0, 0])
      cylinder(h = collector_outlet_len + collector_neck_overlap, d = collector_outlet_od, center = false);
}

// Continuous inner void through the tilted outlet neck.
module collector_outlet_neck_void() {
  translate([0,
             collector_outlet_start_y + collector_neck_overlap * sin(collector_outlet_angle),
             collector_outlet_start_z - collector_neck_overlap * cos(collector_outlet_angle)])
    rotate([collector_outlet_angle, 0, 0])
      translate([0, 0, -0.5])
        cylinder(h = collector_outlet_len + collector_neck_overlap + 1, d = collector_outlet_id, center = false);
}


// Adds small front/back boundary walls on the collector tray lip.
// These are wider than the front/back wall thickness so future receiver notches
// can leave material on both sides of the descending wall extensions.
module collector_tray_boundary_walls_outer() {
  edge_x = -front_wall_w/2 - side_wall_thick/2 - collector_post/2 + tray_boundary_wall_side_inset;
  edge_w = front_wall_w + side_wall_thick + collector_post - 2 * tray_boundary_wall_side_inset;
  z0 = upper_wall_bottom_z;

  translate([edge_x,
             front_wall_y + front_wall_thick/2 - tray_boundary_wall_thick/2,
             z0])
    cube([edge_w, tray_boundary_wall_thick, tray_boundary_wall_h], center = false);

  translate([edge_x,
             back_wall_y + front_wall_thick/2 - tray_boundary_wall_thick/2,
             z0])
    cube([edge_w, tray_boundary_wall_thick, tray_boundary_wall_h], center = false);
}
// Makes the internal seed collector as one continuous hollow funnel and angled neck.
module collector_funnel() {
  difference() {
    union() {
      collector_top_lip_outer();
      collector_tray_boundary_walls_outer();
      collector_chute_outer();
      collector_rear_throat_seal_outer();
      collector_outlet_neck_outer();
    }

    union() {
      collector_chute_void();
      collector_outlet_neck_void();
    }
  }
}

// Adds a light lower frame so the final assembly reaches 190 mm without
// relying on the funnel shell as the only support.
module lower_frame() {
  x_left = -front_wall_w/2 - side_wall_thick/2 - collector_post/2;
  x_right = front_wall_w/2 + side_wall_thick/2 - collector_post/2;
  y_front = side_wall_y;
  y_back = side_wall_y + side_wall_depth - collector_post;

  union() {
    for (x = [x_left, x_right])
      for (y = [y_front, y_back])
        translate([x, y, floor_z])
          cube([collector_post, collector_post, collector_drop_h], center = false);

    translate([x_left, y_back, floor_z])
      cube([x_right + collector_post - x_left, collector_base_rail_thick, collector_base_rail_h], center = false);

    for (x = [x_left, x_right])
      translate([x, y_front, floor_z])
        cube([collector_post, side_wall_depth, collector_base_rail_h], center = false);
  }
}



// Cuts receiver notches into the top of the bottom module for the two side walls.
module bottom_side_wall_notches() {
  c = wall_slot_clearance;
  z0 = upper_wall_bottom_z - bottom_wall_notch_depth;
  h = bottom_wall_notch_depth + collector_lip_overlap_up + 1;

  translate([-front_wall_w/2 - side_wall_thick - c/2,
             side_wall_y - c/2,
             z0])
    cube([side_wall_thick + c, side_wall_depth + c, h], center = false);

  translate([front_wall_w/2 - c/2,
             side_wall_y - c/2,
             z0])
    cube([side_wall_thick + c, side_wall_depth + c, h], center = false);
}

// Cuts one long receiver groove in each tray rail for the front/back brace base.
module front_back_brace_foot_notches() {
  c = front_back_diag_notch_clearance;
  groove_w = front_wall_w - 2 * front_back_diag_end_inset + front_back_diag_tab_w + c;
  groove_y = front_wall_thick + c;
  groove_h = front_back_diag_tab_h + c;
  wall_ys = [front_wall_y, back_wall_y];

  for (y = wall_ys)
    translate([-groove_w/2,
               y - c/2,
               upper_wall_bottom_z - c/2])
      cube([groove_w, groove_y, groove_h], center = false);
}
// Makes the new lower modular piece: collector funnel plus its support frame.
// The original side walls remain separate modules so we can add slide-fit features next.
module bottom_piece() {
  difference() {
    union() {
      collector_funnel();
      lower_frame();
    }
    bottom_side_wall_notches();
    front_back_brace_foot_notches();
  }
}
// Cuts slots through the top plate matching the top footprint of each wall/tab.
module wall_slot_cutouts() {
  c = wall_slot_clearance;

  translate([front_wall_tab_x + front_back_wall_top_tab_inset - c/2, front_wall_y - c/2, -0.5])
    cube([front_wall_tab_w - 2 * front_back_wall_top_tab_inset + c, front_wall_thick + c, plate_thick + 1], center = false);

  translate([back_wall_tab_x + front_back_wall_top_tab_inset - c/2, back_wall_y - c/2, -0.5])
    cube([back_wall_tab_w - 2 * front_back_wall_top_tab_inset + c, front_wall_thick + c, plate_thick + 1], center = false);

  translate([-front_wall_w/2 - side_wall_thick - c/2,
             side_wall_y + side_wall_top_tab_inset - c/2,
             -0.5])
    cube([side_wall_thick + c,
          side_wall_depth - 2 * side_wall_top_tab_inset + c,
          plate_thick + 1], center = false);

  translate([front_wall_w/2 - c/2,
             side_wall_y + side_wall_top_tab_inset - c/2,
             -0.5])
    cube([side_wall_thick + c,
          side_wall_depth - 2 * side_wall_top_tab_inset + c,
          plate_thick + 1], center = false);
}
module case_plate() {
  difference() {
    base_plate();
    funnel_tray_cutout();
    wall_slot_cutouts();
  }
}

module case_assembly() {
  union() {
    case_plate();
    front_wall();
    back_wall();
    side_walls();
    bottom_piece();
  }
}

if (part_to_show == "plate") {
  case_plate();
} else if (part_to_show == "front") {
  front_wall();
} else if (part_to_show == "back") {
  back_wall();
} else if (part_to_show == "left_side") {
  side_wall(-1);
} else if (part_to_show == "right_side") {
  side_wall(1);
} else if (part_to_show == "sides") {
  side_walls();
} else if (part_to_show == "collector") {
  collector_funnel();
} else if (part_to_show == "lower_frame") {
  lower_frame();
} else if (part_to_show == "bottom") {
  bottom_piece();
} else {
  case_assembly();
}
